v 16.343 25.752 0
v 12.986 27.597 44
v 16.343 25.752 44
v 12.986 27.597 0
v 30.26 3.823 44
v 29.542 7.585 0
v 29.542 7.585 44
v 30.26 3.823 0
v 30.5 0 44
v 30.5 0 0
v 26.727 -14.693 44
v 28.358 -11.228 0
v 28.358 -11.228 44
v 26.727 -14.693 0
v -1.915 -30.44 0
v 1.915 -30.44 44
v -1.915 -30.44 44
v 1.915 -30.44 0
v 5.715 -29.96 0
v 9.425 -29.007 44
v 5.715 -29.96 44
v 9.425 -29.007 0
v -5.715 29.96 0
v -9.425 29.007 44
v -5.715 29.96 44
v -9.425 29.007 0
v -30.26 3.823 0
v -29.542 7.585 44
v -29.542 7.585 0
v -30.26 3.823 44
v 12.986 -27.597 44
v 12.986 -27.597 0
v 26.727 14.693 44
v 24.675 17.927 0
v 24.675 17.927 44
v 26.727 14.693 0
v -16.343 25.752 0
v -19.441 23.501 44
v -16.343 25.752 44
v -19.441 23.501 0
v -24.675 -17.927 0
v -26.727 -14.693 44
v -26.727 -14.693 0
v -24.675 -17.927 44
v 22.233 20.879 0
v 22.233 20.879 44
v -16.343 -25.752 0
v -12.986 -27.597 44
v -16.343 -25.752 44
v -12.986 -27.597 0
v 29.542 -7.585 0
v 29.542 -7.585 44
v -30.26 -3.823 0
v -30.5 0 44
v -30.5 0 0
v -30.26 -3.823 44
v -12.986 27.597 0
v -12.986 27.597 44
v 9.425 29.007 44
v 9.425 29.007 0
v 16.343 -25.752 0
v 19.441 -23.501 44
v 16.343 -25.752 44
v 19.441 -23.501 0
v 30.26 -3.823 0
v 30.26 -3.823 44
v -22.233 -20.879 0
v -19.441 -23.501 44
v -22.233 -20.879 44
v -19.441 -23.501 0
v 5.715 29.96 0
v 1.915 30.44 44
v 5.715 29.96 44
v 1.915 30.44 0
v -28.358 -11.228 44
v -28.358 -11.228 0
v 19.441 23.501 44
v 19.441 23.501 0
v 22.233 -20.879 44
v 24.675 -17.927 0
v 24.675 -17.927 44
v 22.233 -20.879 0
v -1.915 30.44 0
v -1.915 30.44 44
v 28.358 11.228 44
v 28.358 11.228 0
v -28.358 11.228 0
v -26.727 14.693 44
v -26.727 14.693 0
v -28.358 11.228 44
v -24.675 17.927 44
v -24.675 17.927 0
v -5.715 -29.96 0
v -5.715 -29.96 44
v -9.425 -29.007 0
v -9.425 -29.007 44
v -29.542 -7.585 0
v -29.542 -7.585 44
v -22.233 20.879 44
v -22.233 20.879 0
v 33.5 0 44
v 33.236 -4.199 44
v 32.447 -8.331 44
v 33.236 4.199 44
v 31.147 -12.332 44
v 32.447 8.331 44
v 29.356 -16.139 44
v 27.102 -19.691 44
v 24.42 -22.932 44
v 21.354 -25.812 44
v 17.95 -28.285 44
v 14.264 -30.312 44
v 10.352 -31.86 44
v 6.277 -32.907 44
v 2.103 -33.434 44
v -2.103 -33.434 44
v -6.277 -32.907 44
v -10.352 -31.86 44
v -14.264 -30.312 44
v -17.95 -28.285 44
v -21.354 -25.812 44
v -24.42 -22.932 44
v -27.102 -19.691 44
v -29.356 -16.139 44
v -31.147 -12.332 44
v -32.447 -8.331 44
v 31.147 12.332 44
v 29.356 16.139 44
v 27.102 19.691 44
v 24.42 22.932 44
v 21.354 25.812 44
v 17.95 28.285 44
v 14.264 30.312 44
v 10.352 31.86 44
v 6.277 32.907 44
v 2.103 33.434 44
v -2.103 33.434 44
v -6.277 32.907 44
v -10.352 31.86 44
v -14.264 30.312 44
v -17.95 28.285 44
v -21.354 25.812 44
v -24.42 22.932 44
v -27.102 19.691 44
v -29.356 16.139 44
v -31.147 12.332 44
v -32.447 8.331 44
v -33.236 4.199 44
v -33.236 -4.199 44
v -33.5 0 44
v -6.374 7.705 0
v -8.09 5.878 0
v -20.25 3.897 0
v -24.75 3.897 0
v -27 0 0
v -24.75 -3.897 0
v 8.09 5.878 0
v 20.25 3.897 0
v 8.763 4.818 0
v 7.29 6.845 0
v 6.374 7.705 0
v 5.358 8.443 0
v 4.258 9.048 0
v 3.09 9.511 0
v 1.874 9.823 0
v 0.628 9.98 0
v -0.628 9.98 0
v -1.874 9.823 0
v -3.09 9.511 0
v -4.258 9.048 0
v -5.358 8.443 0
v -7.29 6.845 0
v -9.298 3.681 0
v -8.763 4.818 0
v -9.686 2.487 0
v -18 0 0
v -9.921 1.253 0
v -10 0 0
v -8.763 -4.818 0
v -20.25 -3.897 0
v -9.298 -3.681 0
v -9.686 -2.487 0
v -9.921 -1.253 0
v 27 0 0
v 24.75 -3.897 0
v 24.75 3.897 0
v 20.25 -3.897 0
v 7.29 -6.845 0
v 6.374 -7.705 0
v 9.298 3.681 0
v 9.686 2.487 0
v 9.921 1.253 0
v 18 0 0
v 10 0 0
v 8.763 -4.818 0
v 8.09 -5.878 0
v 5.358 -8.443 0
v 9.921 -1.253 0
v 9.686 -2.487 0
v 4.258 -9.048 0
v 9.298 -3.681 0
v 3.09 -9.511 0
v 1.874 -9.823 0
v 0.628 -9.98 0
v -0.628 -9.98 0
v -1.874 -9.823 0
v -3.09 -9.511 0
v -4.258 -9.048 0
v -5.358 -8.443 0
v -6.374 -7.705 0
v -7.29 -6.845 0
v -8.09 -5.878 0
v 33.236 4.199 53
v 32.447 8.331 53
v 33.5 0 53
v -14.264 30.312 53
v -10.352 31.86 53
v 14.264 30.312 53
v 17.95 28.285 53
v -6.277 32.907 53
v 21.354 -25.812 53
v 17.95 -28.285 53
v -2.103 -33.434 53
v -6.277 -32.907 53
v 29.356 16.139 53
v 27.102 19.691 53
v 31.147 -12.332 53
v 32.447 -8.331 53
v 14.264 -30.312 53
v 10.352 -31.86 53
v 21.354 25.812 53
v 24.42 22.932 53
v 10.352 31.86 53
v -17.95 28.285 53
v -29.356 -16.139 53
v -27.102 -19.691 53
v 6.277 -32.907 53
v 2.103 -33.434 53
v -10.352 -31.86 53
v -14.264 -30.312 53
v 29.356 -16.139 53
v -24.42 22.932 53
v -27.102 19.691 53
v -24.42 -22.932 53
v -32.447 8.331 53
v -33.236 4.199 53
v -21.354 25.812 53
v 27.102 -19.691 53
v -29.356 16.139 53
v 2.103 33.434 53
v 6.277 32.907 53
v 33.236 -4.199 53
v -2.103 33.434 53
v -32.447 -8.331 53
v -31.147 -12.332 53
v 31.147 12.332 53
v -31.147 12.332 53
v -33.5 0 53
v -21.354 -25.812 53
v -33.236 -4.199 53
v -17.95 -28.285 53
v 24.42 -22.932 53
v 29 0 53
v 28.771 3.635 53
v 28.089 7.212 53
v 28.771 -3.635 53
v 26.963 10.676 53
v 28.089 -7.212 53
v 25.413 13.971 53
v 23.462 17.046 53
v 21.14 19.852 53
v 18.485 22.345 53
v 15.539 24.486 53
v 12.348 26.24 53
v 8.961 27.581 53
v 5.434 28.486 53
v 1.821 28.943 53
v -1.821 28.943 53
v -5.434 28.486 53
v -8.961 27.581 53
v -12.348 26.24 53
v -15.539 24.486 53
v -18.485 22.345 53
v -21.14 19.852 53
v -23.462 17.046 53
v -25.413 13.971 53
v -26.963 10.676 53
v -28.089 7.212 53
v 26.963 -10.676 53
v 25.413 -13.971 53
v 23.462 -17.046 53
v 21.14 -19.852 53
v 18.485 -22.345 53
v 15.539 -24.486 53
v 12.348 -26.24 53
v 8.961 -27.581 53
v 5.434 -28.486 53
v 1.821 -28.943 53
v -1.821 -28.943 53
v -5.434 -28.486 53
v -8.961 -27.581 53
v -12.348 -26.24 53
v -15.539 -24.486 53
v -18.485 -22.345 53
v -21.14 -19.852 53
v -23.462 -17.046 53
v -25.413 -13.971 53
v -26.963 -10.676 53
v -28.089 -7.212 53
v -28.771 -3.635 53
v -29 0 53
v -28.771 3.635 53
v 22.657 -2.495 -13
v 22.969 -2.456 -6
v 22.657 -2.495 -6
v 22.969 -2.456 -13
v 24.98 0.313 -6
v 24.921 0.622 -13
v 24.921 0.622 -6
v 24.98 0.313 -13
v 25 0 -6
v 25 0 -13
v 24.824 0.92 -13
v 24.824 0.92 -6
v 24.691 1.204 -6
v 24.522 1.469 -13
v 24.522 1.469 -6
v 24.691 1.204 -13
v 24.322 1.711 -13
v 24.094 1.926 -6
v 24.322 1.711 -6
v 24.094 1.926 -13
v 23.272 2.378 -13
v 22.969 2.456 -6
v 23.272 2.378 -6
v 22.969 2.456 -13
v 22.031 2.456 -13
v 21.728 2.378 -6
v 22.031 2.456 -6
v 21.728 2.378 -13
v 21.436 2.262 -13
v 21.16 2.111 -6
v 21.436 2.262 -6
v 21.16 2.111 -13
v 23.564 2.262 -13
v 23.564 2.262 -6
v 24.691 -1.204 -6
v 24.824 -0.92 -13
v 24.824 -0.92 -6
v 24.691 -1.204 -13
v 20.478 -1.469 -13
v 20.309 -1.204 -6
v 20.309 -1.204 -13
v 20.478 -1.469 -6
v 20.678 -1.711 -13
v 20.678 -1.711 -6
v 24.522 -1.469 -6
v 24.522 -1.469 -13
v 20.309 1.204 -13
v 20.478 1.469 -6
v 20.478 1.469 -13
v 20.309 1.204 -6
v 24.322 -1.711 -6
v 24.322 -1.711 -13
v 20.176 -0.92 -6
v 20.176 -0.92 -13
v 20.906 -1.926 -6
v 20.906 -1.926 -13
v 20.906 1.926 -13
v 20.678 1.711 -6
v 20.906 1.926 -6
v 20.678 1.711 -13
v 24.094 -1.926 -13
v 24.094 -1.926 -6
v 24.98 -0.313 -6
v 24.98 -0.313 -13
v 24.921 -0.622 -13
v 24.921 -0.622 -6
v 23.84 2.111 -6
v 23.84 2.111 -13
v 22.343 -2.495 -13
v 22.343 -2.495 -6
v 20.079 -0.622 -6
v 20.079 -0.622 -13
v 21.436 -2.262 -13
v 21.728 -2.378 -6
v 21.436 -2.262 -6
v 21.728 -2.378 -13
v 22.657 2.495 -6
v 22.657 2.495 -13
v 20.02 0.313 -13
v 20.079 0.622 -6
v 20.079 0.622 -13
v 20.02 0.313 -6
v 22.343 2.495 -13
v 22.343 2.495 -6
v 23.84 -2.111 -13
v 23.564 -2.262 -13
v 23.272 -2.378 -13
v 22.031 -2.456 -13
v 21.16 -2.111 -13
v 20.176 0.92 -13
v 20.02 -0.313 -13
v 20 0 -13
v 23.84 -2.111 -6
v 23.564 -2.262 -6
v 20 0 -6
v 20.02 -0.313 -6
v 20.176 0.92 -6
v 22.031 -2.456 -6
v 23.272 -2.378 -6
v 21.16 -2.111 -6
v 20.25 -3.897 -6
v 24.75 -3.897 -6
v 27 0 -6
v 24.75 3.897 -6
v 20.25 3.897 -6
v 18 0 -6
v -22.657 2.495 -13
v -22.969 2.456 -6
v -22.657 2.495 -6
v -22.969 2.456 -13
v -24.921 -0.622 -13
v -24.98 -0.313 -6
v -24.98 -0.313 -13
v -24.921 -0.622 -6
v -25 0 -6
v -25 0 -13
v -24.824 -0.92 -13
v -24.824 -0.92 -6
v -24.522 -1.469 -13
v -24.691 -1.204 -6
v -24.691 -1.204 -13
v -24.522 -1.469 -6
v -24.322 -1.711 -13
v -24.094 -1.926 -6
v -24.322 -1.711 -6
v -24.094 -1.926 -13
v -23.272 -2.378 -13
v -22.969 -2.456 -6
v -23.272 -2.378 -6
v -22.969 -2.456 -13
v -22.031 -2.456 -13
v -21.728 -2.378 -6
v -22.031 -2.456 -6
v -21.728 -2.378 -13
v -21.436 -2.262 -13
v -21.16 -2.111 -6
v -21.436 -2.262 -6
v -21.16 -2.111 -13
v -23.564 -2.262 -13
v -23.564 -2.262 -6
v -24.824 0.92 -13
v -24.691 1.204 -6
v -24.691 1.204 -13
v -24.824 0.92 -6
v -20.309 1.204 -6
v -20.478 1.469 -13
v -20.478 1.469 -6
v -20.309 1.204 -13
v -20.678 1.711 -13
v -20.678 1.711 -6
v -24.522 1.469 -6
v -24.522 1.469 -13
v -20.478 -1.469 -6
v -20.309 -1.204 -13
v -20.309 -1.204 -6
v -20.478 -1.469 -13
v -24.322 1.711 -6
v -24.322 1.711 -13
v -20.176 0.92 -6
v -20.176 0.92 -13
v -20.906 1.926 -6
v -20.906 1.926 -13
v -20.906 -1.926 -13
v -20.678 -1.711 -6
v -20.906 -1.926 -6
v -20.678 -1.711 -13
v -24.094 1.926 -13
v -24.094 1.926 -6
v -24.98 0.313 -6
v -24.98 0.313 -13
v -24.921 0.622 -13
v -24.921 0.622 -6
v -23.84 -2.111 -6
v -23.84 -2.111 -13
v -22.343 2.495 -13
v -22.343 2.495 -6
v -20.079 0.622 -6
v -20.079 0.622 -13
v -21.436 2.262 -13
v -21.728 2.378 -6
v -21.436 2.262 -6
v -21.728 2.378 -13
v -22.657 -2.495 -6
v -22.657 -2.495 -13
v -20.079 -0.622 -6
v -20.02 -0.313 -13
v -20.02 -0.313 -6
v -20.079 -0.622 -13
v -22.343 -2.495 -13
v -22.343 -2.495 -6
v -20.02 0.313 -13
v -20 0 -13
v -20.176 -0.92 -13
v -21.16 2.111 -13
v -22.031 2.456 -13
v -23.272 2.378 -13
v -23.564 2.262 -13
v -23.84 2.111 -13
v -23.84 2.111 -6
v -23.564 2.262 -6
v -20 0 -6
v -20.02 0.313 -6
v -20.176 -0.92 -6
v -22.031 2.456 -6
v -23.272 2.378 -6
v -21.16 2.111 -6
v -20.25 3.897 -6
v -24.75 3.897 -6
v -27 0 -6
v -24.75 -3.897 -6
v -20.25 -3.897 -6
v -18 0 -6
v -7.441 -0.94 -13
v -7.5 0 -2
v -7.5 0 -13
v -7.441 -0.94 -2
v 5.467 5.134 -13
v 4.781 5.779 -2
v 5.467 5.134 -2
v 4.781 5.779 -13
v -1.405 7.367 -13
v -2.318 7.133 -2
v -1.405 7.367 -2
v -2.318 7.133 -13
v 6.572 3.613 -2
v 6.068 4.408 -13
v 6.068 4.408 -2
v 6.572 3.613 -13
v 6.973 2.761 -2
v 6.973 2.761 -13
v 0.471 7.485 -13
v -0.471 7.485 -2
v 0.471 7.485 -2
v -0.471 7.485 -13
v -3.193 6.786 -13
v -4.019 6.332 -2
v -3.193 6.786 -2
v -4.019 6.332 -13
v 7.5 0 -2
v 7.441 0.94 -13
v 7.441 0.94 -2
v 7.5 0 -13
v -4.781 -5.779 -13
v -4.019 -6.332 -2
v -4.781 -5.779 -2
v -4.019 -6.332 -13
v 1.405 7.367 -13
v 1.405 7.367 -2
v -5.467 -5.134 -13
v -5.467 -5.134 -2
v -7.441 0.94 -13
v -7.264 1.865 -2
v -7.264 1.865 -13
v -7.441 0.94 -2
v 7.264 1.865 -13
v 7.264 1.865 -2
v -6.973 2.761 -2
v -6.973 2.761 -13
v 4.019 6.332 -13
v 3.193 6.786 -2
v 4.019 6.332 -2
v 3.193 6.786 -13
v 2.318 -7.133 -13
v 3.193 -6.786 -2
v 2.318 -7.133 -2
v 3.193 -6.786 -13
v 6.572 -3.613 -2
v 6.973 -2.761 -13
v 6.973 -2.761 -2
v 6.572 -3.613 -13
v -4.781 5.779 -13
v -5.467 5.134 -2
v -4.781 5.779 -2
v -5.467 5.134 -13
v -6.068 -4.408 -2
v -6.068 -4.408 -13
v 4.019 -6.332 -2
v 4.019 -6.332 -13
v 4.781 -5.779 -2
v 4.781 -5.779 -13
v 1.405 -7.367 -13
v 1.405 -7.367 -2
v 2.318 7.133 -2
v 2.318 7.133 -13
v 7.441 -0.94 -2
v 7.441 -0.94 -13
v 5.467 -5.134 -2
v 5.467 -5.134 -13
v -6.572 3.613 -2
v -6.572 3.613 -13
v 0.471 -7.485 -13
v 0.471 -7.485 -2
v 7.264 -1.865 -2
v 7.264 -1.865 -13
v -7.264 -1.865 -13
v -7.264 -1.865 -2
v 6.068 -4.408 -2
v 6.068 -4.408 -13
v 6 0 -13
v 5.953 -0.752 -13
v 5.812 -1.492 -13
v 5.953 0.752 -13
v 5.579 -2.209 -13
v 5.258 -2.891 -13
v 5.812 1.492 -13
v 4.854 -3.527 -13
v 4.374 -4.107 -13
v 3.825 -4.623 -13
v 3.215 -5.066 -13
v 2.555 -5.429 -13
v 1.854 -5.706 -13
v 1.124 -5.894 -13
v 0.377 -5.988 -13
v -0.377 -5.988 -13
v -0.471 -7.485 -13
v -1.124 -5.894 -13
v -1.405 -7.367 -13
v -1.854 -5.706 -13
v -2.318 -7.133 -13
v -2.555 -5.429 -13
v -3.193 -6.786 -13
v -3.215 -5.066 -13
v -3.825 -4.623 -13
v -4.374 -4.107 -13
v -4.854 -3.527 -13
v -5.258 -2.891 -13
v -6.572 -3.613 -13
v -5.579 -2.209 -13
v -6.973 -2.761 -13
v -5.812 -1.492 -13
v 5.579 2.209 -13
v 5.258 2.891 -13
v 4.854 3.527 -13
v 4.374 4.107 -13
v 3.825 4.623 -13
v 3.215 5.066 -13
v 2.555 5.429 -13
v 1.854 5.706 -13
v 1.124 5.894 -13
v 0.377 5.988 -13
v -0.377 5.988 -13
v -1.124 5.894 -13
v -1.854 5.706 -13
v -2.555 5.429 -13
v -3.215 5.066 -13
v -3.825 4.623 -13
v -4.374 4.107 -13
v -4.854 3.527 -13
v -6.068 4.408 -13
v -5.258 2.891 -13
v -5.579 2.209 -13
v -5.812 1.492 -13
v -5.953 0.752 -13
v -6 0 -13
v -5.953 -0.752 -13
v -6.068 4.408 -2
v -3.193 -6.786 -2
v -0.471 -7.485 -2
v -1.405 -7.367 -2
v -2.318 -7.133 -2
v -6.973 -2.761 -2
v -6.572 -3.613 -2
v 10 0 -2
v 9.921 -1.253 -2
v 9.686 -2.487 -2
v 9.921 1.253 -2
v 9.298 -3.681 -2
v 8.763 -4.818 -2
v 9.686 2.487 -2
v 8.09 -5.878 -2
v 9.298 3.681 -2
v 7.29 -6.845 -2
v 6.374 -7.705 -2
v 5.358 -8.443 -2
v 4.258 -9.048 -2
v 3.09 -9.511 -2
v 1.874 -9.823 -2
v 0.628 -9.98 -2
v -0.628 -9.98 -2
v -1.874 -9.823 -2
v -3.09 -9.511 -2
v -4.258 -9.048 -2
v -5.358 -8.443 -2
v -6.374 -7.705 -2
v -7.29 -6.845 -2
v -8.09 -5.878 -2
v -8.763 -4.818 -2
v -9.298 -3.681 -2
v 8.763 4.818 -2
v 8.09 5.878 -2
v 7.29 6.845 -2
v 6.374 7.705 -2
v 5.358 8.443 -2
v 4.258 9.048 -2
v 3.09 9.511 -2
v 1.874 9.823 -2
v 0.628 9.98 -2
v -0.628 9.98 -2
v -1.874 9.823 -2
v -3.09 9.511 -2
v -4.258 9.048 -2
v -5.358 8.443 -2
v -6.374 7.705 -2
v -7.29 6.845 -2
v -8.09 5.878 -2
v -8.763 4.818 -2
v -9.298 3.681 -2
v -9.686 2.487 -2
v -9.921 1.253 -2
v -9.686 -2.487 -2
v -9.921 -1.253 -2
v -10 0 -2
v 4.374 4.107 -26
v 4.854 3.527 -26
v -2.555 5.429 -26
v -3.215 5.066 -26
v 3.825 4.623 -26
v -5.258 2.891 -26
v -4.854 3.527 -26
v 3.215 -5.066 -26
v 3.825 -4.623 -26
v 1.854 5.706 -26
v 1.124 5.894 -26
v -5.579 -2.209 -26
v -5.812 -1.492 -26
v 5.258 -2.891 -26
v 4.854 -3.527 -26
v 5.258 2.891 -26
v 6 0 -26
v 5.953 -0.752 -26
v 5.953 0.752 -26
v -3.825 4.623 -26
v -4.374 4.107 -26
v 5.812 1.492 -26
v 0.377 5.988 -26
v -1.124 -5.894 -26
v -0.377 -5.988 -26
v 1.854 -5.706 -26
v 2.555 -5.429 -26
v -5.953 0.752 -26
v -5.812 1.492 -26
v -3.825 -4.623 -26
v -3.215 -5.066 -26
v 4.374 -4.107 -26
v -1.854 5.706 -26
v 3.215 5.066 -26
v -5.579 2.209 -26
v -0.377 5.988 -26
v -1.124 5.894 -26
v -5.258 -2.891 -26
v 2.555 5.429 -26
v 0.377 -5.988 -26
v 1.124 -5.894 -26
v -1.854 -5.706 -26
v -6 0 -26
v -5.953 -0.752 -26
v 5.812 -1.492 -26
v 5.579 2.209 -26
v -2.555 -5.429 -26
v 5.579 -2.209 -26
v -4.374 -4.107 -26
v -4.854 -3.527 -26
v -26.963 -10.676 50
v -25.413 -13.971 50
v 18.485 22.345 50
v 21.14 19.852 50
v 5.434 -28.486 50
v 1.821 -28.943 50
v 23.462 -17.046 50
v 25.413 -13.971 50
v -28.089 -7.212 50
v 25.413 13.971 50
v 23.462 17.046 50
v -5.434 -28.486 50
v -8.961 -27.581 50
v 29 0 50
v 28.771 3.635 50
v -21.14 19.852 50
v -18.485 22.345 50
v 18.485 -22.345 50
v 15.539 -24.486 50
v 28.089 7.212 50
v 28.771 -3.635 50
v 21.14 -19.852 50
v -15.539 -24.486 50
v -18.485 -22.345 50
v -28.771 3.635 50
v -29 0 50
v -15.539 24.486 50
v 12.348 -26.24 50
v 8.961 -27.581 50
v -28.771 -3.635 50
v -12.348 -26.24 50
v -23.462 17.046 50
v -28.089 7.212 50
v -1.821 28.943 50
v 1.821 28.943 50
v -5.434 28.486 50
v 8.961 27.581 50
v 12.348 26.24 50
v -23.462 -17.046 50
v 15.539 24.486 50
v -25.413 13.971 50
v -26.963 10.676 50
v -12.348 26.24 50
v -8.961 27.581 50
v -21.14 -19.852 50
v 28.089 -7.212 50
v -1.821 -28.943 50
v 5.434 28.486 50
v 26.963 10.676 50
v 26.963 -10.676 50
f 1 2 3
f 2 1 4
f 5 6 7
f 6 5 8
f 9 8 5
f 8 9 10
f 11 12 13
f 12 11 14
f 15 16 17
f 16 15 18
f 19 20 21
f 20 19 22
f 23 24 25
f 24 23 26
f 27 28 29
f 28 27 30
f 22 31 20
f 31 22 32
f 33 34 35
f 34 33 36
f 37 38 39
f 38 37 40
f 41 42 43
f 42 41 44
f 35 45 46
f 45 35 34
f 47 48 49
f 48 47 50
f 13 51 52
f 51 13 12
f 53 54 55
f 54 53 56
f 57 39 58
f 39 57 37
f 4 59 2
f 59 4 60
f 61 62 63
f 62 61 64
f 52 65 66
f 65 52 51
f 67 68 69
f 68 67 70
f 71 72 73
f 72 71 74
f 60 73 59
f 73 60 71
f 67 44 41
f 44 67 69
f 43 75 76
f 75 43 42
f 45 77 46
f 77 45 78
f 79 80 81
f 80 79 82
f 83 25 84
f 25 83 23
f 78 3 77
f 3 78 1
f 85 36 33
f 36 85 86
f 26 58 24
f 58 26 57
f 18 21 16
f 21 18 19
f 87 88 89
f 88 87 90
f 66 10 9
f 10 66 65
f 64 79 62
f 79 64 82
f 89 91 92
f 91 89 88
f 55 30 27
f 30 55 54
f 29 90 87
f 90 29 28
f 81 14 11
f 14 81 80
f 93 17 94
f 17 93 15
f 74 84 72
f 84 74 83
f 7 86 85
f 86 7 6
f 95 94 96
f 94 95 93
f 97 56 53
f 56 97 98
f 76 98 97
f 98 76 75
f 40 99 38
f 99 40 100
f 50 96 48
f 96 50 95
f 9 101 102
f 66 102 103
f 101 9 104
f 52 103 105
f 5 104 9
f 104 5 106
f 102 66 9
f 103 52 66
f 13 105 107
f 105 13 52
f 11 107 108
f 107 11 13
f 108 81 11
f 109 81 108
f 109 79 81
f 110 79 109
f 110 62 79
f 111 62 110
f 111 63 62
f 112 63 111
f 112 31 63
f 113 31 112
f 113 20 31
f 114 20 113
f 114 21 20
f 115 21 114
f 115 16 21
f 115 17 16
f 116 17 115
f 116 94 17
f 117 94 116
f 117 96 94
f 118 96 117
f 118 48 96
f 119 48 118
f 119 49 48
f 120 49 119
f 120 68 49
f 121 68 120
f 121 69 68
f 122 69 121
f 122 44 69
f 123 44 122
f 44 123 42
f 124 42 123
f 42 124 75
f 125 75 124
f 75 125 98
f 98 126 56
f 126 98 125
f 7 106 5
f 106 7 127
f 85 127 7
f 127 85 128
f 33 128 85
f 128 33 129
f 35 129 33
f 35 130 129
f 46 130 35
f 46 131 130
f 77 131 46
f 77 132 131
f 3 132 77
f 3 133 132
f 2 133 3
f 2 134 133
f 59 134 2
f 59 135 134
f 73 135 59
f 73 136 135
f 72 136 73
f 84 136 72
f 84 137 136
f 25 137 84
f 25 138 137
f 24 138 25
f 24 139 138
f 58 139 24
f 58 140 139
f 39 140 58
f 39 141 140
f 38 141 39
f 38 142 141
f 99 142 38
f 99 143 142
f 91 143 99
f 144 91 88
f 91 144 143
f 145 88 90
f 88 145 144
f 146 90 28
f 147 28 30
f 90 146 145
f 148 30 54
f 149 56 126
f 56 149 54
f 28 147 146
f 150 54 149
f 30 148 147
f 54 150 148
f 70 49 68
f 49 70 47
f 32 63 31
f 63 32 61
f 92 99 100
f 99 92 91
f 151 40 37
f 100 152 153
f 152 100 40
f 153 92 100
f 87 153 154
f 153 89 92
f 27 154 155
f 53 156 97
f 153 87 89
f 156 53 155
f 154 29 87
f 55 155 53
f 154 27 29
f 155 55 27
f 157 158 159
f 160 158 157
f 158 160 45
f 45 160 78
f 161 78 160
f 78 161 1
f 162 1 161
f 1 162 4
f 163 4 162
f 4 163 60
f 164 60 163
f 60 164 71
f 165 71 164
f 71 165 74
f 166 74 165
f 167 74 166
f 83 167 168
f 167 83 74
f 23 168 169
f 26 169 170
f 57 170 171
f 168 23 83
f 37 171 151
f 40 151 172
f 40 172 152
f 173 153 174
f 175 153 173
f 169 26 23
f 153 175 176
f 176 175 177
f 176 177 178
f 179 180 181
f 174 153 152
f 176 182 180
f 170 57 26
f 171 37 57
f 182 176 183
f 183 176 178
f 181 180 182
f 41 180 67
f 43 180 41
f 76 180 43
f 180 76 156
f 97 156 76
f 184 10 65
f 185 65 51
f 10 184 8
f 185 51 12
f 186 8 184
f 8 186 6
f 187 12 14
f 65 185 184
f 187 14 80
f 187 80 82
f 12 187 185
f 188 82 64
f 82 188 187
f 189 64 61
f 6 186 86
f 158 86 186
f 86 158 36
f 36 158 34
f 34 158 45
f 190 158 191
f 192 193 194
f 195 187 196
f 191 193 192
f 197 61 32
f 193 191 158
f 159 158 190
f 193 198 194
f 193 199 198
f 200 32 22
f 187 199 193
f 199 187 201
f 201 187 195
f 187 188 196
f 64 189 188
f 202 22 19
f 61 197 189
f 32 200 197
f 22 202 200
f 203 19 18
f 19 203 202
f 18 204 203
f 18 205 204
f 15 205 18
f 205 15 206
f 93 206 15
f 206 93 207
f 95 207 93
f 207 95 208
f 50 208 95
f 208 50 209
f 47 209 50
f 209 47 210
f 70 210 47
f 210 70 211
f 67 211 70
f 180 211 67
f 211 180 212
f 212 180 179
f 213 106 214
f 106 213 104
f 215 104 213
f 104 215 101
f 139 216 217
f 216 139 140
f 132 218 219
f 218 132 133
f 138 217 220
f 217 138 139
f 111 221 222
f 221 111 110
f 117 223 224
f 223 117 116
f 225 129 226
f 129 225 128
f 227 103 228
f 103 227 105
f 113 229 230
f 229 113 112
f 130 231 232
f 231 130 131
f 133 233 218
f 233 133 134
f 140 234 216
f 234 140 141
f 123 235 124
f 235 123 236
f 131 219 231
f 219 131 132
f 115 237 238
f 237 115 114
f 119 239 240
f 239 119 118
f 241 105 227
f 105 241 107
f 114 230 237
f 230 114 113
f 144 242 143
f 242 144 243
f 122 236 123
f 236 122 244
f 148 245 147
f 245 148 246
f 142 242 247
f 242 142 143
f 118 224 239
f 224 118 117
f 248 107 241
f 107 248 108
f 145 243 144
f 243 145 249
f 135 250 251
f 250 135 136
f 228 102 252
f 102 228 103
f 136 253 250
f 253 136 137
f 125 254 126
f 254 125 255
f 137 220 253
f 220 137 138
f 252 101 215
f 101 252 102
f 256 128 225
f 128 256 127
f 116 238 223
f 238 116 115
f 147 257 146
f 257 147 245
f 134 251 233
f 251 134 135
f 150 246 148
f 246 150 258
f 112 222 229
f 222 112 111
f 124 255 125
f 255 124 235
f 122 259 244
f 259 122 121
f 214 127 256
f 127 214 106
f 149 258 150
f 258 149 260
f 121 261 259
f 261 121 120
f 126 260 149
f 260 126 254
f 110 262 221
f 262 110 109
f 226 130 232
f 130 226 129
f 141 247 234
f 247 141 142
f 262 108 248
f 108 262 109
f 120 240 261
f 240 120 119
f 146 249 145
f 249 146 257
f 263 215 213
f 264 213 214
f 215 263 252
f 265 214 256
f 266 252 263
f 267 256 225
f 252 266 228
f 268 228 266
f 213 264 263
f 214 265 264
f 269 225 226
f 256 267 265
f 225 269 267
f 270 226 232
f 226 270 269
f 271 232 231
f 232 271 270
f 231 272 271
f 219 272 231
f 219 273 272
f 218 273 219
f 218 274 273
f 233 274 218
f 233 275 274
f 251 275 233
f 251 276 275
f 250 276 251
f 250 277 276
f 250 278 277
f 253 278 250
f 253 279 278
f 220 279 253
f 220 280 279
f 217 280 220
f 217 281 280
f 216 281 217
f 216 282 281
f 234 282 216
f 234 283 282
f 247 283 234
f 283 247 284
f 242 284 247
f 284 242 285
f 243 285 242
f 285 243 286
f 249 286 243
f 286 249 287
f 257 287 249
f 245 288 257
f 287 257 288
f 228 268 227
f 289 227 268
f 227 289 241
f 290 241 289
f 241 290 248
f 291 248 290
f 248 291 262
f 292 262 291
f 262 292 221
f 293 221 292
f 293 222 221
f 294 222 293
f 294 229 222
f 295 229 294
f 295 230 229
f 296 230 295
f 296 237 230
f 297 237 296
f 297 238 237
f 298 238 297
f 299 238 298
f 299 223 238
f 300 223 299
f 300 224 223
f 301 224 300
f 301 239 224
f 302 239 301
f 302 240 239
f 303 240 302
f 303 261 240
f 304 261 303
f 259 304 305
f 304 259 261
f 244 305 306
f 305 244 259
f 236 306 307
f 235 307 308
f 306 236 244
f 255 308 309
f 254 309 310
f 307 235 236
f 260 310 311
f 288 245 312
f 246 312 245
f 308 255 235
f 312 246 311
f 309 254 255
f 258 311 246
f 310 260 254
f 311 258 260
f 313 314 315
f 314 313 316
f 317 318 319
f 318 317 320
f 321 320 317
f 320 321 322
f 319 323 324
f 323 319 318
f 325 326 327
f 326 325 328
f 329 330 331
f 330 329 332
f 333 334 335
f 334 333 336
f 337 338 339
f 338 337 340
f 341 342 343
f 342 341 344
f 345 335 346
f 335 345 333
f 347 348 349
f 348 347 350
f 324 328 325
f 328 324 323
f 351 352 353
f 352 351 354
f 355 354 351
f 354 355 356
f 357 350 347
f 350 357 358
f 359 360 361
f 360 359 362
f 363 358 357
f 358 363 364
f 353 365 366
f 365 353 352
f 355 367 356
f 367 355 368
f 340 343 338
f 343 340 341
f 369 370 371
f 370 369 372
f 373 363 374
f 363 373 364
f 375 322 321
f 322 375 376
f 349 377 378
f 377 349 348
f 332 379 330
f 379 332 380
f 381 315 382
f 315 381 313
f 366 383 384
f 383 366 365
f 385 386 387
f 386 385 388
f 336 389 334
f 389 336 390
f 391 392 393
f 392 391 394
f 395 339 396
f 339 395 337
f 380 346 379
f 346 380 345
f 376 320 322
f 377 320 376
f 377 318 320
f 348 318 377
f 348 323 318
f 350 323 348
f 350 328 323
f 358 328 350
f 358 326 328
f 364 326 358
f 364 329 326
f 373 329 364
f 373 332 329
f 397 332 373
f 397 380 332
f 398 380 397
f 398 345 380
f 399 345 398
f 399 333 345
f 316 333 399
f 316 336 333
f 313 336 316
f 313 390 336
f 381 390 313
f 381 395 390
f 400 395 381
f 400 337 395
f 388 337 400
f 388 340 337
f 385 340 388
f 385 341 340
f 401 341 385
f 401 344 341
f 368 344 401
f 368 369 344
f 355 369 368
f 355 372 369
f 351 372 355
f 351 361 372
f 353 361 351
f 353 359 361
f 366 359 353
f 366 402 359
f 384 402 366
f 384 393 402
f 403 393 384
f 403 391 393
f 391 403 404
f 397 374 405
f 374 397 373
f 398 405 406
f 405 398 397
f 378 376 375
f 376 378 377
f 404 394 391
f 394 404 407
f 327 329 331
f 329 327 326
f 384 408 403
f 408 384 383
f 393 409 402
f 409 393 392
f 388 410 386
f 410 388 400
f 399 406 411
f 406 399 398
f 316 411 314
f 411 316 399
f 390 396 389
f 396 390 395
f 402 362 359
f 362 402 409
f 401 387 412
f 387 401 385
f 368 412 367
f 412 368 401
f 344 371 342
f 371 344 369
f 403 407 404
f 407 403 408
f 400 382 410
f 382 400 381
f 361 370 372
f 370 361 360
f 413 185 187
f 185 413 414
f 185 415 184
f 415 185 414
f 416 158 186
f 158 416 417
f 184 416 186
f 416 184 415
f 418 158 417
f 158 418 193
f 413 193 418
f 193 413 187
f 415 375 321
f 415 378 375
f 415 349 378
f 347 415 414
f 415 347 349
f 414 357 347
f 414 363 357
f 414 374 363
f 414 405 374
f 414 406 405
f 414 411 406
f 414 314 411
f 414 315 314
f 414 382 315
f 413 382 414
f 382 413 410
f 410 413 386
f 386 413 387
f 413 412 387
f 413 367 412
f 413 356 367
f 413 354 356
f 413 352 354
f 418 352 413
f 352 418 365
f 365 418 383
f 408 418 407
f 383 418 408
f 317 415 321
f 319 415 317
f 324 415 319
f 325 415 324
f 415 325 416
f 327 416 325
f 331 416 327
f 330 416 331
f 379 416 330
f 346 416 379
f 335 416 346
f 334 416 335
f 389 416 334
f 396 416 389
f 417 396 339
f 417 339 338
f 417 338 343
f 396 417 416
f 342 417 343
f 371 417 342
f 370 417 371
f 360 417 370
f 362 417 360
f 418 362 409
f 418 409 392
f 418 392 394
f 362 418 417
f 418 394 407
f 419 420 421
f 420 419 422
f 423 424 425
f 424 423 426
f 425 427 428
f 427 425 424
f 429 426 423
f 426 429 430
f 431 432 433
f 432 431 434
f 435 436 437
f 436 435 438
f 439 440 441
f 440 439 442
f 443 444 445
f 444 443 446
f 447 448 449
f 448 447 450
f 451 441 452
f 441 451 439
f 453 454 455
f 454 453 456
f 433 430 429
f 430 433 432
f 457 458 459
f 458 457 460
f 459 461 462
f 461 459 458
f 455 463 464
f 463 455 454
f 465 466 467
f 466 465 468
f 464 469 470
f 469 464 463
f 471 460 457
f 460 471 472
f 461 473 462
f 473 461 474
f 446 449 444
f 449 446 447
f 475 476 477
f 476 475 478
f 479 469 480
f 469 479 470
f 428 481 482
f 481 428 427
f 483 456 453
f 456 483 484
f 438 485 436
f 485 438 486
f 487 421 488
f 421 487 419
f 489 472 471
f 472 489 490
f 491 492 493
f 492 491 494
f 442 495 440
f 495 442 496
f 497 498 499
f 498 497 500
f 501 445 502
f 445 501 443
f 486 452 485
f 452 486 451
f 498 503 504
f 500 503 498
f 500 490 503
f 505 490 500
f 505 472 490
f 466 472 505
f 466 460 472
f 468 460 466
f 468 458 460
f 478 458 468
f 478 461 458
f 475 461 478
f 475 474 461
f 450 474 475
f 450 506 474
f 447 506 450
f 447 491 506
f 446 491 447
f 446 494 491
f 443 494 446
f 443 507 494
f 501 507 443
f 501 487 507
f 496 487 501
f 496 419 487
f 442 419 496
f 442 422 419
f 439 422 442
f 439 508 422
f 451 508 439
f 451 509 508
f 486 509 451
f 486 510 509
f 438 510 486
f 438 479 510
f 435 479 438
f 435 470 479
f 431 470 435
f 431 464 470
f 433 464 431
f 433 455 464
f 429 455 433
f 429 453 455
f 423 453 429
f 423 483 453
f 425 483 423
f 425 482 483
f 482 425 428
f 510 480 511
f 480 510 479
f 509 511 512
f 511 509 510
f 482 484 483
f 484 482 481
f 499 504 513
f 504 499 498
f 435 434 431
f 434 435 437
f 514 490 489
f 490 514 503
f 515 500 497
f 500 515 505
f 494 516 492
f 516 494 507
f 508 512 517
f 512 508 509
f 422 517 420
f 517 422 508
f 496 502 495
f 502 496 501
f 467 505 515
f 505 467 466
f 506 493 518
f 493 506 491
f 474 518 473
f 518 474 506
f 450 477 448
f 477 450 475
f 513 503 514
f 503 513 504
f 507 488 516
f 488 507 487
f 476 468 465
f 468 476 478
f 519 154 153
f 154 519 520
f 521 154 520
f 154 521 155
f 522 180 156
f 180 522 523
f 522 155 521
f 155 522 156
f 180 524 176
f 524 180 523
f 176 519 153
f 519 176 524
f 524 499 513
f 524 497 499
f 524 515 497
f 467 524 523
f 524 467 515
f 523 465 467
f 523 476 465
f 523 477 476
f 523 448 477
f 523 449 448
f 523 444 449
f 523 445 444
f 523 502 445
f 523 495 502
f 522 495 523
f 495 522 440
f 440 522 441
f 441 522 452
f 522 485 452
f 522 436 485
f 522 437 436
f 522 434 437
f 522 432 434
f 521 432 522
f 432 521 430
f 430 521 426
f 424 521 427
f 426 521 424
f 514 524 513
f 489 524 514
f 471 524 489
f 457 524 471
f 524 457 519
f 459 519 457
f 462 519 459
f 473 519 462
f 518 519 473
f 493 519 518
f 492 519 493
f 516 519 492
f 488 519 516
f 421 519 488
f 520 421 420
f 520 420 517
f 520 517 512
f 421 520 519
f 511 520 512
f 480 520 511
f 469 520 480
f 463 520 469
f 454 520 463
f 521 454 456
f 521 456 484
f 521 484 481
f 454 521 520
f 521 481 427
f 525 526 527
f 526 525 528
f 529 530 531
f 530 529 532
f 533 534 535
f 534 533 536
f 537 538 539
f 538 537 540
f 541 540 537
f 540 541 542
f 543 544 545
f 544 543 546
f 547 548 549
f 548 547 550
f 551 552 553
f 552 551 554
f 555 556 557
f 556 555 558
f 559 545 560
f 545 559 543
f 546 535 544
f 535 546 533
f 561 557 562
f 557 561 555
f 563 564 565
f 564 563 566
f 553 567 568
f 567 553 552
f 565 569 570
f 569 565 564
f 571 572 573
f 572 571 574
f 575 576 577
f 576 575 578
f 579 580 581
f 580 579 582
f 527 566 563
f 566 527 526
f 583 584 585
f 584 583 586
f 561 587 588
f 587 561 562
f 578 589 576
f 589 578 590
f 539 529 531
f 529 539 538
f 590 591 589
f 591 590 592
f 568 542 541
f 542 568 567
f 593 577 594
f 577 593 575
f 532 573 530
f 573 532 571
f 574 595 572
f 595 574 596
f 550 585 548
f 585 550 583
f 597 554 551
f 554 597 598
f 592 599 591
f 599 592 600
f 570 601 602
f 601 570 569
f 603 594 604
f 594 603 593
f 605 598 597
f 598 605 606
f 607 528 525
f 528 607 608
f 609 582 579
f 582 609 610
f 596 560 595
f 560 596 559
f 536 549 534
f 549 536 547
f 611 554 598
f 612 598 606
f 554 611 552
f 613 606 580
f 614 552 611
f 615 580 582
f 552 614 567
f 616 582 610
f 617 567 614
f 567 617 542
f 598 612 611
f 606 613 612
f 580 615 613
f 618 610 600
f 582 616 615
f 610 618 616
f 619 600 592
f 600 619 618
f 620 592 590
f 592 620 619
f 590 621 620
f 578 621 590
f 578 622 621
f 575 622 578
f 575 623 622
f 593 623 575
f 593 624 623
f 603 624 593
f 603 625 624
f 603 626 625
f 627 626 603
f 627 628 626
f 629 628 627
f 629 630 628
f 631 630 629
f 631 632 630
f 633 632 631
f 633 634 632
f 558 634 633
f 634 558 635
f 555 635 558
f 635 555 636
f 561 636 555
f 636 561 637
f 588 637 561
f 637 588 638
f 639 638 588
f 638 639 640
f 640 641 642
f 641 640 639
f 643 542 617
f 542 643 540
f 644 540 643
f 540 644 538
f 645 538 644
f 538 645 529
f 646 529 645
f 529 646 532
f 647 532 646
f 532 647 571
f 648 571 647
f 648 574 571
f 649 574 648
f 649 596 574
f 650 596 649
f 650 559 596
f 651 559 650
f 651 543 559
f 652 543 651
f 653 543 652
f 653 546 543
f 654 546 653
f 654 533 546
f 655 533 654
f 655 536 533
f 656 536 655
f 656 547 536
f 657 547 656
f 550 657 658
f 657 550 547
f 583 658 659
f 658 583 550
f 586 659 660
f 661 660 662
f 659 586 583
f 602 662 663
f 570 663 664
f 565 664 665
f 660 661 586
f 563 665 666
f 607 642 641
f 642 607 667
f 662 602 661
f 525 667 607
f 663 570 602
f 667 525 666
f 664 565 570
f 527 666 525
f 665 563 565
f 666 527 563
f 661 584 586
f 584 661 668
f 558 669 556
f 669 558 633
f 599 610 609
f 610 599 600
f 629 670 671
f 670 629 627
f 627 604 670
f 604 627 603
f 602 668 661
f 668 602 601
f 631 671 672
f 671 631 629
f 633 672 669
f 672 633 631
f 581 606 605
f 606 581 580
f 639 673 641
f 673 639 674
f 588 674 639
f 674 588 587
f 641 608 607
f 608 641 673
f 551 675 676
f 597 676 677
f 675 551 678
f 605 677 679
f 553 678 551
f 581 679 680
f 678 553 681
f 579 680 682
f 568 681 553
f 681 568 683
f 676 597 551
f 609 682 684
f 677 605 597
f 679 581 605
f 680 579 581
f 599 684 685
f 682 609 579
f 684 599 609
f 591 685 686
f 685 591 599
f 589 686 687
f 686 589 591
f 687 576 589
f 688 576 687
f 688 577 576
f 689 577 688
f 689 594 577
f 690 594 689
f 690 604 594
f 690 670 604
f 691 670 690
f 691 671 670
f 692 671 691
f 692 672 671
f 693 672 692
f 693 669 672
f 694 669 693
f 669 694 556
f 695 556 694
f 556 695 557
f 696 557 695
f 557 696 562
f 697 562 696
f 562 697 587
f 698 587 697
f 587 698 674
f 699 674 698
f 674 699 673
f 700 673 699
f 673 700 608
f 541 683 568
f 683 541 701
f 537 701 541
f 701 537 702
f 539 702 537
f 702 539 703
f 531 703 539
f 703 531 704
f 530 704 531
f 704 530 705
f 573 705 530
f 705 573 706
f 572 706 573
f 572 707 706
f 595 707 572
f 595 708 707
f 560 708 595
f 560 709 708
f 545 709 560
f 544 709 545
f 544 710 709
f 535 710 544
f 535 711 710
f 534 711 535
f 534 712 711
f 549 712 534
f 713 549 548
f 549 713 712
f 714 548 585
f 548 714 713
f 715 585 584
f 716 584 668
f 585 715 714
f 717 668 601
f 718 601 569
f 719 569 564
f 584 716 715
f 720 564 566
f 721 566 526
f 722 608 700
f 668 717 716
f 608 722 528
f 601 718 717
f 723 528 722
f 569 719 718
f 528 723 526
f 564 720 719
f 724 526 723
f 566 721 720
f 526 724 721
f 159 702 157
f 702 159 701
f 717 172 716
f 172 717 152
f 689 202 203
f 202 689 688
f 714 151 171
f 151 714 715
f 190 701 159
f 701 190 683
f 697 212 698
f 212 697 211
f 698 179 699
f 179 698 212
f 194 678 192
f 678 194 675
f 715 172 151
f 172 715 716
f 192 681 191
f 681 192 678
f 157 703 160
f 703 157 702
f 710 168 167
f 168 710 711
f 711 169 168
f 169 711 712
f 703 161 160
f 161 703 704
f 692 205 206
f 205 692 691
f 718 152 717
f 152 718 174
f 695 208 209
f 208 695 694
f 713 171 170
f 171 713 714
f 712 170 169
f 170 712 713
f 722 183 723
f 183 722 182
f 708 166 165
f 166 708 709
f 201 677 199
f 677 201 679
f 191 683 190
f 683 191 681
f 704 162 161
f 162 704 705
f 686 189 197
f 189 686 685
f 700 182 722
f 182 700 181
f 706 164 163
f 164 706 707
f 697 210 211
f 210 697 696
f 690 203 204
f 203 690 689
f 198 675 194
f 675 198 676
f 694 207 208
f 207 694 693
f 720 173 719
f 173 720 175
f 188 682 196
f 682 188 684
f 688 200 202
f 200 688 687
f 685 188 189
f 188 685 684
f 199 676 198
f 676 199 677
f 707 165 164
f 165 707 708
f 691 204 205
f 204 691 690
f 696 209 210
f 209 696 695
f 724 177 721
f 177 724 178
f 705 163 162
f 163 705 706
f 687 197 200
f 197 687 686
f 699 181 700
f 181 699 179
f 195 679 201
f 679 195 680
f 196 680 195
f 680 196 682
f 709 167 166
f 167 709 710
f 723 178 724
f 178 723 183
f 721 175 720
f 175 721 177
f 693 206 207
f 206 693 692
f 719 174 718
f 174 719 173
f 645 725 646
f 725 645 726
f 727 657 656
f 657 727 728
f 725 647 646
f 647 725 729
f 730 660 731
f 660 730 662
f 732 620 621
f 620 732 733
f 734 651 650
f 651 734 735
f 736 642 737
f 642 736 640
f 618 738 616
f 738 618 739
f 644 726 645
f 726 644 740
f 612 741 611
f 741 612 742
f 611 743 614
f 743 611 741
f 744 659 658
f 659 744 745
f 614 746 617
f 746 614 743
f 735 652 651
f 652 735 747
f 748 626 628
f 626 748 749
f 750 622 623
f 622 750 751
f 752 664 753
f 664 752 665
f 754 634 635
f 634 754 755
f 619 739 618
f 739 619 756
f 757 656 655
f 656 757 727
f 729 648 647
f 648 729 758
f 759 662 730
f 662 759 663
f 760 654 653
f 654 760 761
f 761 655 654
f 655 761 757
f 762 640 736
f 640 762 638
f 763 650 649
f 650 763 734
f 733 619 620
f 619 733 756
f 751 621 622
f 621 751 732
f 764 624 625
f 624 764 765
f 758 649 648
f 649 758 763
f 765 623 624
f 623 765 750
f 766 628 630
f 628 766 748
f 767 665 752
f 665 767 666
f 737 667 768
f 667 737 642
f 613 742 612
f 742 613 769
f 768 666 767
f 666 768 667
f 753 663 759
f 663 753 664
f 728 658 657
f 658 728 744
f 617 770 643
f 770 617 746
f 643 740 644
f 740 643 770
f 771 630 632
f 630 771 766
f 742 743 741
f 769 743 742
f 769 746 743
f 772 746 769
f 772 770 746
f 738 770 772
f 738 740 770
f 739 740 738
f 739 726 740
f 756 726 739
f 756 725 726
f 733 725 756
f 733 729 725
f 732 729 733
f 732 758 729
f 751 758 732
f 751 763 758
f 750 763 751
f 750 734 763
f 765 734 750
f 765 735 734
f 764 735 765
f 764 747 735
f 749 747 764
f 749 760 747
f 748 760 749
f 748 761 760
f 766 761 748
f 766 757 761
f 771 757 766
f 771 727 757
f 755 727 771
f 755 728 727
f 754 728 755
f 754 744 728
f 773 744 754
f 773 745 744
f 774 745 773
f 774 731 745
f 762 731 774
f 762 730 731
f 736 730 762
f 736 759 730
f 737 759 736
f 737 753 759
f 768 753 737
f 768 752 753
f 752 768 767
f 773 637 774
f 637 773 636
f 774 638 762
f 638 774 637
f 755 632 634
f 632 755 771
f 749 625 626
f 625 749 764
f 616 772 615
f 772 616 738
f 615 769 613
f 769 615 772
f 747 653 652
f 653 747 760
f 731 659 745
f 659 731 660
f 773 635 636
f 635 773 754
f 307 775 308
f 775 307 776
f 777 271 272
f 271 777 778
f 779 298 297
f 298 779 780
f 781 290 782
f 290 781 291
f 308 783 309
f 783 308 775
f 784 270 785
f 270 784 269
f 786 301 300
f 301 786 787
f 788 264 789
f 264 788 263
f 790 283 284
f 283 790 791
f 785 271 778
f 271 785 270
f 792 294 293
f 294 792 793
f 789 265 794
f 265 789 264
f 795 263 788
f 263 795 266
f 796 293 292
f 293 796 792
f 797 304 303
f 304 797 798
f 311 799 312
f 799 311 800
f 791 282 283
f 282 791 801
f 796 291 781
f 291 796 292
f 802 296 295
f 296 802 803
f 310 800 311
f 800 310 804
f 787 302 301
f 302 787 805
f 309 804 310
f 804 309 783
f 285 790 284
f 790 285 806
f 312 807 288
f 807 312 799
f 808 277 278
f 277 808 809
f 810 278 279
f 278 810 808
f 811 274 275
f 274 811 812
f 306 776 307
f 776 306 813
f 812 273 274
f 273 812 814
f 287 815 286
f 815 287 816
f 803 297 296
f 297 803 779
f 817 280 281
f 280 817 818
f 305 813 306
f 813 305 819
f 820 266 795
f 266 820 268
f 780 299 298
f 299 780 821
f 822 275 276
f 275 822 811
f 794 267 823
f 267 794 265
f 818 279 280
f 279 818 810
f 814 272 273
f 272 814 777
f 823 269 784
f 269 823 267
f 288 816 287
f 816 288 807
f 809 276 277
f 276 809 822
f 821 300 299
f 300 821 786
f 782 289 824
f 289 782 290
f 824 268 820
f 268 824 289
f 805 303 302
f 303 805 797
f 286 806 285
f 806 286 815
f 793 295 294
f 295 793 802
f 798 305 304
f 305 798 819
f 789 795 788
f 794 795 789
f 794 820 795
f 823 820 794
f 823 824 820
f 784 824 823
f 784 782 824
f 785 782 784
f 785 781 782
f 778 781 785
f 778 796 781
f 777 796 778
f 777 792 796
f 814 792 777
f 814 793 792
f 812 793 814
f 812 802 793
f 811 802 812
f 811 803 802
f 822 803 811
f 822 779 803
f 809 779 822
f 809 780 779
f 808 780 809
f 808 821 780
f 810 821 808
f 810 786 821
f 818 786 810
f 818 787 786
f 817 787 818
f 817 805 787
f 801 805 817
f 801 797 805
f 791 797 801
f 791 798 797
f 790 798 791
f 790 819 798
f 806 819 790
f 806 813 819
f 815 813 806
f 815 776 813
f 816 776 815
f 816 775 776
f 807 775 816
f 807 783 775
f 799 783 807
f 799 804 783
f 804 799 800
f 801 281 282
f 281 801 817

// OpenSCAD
// file: vbracket.scad
/*
  author: Christopher O'Brien  <obriencj@gmail.com>
  license: GPL v.3
*/


module v_bracket(thick=2.1, $fn=50) {
     /*
       this is the V-shaped bracket that comes with the 2.5" DCC Mini
       Gauges by default.
     */

     // todo: let's make this less of a mess.

     // how far from the main mounting hole center to the smaller
     // mounting hole centers along the y axis
     y_hole_space = 50;

     // distance between bolts, split in half since we'll duplicate
     b_offset = 45 / 2;

     translate([0, -y_hole_space, 0])
     difference() {
	  union() {
	       hull() {
		    cylinder(thick, r=20/2);
		    translate([b_offset, y_hole_space, 0]) {
			 cylinder(thick, r=15/2);
		    };
	       };
	       hull() {
		    cylinder(thick, r=20/2);
		    translate([-b_offset, y_hole_space, 0]) {
			 cylinder(thick, r=15/2);
		    };
	       };
	  };

	  translate([0, 0, -0.5]) {
	       translate([b_offset, y_hole_space, 0]) {
		    cylinder(thick+1, r=6.5/2);
	       };
	       translate([-b_offset, y_hole_space, 0]) {
		    cylinder(thick+1, r=6.5/2);
	       };
	       cylinder(thick+1, r=10/2);


	       hull() {
		    small_r = (44 - 26) / 2;
		    translate([0, 30, 0]) {
			 cylinder(thick+1, r=small_r);
		    };
		    translate([0, 58, 0]) {
			 cylinder(thick+1, r=32/2);
		    };
	       };
	  };
     };
}


v_bracket();


// The end.
// file: common.scad
/*
  author: Christopher O'Brien  <obriencj@gmail.com>
  license: GPL v3
*/


module duplicate(move_v=[0,0,0], rotate_v=[0,0,0]) {
     children();
     translate(move_v) {
          rotate(rotate_v) {
               children();
          };
     };
}


module double_sided(y_axis, z_thickness) {
     translate([0, 0, z_thickness / 2]) {
          duplicate(move_v=[0, y_axis, 0],
                    rotate_v=[180, 0, 0]) {
               children();
          };
     };
}


module rounded_plate(width, height, thickness, turn_r=5.1, $fn=50) {
     turn_d = turn_r * 2;

     translate([turn_r, turn_r, 0]) {
          linear_extrude(thickness) {
               minkowski() {
                    square([width - turn_d, height - turn_d]);
                    circle(turn_r);
               };
          };
     };
}


module words(txt_v, size=6, thick=5, spacing=0,
             font="Liberation Sans", style="Bold",
             halign="center", valign="center", $fn=50) {

     fontstyle = str(font, ":style=", style);

     lspacing = (spacing == 0)? size + 2: spacing;

     linear_extrude(height=thick) {
          for(i = [0 : len(txt_v) - 1]) {
               translate([0, i * -lspacing, 0])
                    text(txt_v[i], size=size, font=fontstyle,
                         halign=halign, valign=valign);
          };
     };
}


// The end.
// main file
/*
  author: Christopher O'Brien  <obriencj@gmail.com>
  license: GPL v.3
*/


use <common.scad>;
use <vbracket.scad>;


module gauge_cable_plug(height=23, thread=13) {
     /*
       A speedo or tacho cable connector.
     */

     stub = height - thread;

     color("Gold") {
	  cylinder(thread, r=12/2);
     }

     color("Silver") {
	  translate([0, 0, thread]) {
	       cylinder(stub-2, r=15/2);
	  };
	  translate([0, 0, thread + stub - 2]) {
	       cylinder(2, r=20/2);
	  };
     };
}


module mini_gauge(bracket=false, $fn=50) {
     /*
       Basic representation of the 2.5" DCC Mini Gauges
     */

     rim_r = 67 / 2;
     rim_h = 9;

     body_r = 61 / 2;
     body_h = 53 - rim_h;

     // mounting bolt, overall
     bolt_r = 5 / 2;
     bolt_l = 13;
     bolt_offset = 45 / 2;

     // bump, washer, and nut
     bolt_lost_r = 9 / 2;
     bolt_lost_l = 6;

     // the inset glass face
     rim_brim = 4.5;  // how
     face_r = rim_r - rim_brim;
     face_inset = 3;

     plug_height = 26;
     plug_thread = 13;

     difference() {
	  union() {
	       color("Silver") {

		    // primary housing
		    cylinder(body_h, r=body_r);

		    // top rim
		    translate([0, 0, body_h]) {
			 cylinder(rim_h, r=rim_r);
		    }
	       };

	       // bolts
	       duplicate(rotate_v=[0, 0, 180]) {
		    // the overall length of the bolt from the
		    // body
		    color("Gold") {
			 translate([bolt_offset, 0, -bolt_l]) {
			      cylinder(bolt_l, r=bolt_r);
			 };
		    };

		    color("Silver") {
			 // the body has a raised area the bolts
			 // protrude from, plus a mandatory nut and
			 // washer to hold the internals in place. The
			 // remainder is for mounting the unit.
			 translate([bolt_offset, 0, -bolt_lost_l]) {
			      cylinder(bolt_lost_l, r=bolt_lost_r, $fn=6);
			 };
		    };
	       };

	       translate([0, 0, -plug_height]) {
		    gauge_cable_plug(height=plug_height, thread=plug_thread);
	       };
	  };

	  // subtract for inset face
	  translate([0, 0, (body_h + rim_h) - face_inset]) {
	       cylinder(face_inset + 1, r=face_r);
	  };
     };

     if (bracket == true) {
	  bracket_thick = 2.1;
	  bracket_down = bolt_lost_l + bracket_thick;

	  translate([0, 0, -bracket_down]) {
	       color("Silver") v_bracket(thick=bracket_thick);
	  };

	  bracket_bolt_l = 4.8;
	  bracket_bolt_down = bracket_down + bracket_bolt_l;

	  duplicate(rotate_v=[0, 0, 180]) {
	       color("Silver") {
		    translate([bolt_offset, 0, -bracket_bolt_down]) {
			 cylinder(bracket_bolt_l, r=bolt_lost_r, $fn=6);
		    };
	       };
	  };
     };
}



mini_gauge(bracket=false);


// The end.
